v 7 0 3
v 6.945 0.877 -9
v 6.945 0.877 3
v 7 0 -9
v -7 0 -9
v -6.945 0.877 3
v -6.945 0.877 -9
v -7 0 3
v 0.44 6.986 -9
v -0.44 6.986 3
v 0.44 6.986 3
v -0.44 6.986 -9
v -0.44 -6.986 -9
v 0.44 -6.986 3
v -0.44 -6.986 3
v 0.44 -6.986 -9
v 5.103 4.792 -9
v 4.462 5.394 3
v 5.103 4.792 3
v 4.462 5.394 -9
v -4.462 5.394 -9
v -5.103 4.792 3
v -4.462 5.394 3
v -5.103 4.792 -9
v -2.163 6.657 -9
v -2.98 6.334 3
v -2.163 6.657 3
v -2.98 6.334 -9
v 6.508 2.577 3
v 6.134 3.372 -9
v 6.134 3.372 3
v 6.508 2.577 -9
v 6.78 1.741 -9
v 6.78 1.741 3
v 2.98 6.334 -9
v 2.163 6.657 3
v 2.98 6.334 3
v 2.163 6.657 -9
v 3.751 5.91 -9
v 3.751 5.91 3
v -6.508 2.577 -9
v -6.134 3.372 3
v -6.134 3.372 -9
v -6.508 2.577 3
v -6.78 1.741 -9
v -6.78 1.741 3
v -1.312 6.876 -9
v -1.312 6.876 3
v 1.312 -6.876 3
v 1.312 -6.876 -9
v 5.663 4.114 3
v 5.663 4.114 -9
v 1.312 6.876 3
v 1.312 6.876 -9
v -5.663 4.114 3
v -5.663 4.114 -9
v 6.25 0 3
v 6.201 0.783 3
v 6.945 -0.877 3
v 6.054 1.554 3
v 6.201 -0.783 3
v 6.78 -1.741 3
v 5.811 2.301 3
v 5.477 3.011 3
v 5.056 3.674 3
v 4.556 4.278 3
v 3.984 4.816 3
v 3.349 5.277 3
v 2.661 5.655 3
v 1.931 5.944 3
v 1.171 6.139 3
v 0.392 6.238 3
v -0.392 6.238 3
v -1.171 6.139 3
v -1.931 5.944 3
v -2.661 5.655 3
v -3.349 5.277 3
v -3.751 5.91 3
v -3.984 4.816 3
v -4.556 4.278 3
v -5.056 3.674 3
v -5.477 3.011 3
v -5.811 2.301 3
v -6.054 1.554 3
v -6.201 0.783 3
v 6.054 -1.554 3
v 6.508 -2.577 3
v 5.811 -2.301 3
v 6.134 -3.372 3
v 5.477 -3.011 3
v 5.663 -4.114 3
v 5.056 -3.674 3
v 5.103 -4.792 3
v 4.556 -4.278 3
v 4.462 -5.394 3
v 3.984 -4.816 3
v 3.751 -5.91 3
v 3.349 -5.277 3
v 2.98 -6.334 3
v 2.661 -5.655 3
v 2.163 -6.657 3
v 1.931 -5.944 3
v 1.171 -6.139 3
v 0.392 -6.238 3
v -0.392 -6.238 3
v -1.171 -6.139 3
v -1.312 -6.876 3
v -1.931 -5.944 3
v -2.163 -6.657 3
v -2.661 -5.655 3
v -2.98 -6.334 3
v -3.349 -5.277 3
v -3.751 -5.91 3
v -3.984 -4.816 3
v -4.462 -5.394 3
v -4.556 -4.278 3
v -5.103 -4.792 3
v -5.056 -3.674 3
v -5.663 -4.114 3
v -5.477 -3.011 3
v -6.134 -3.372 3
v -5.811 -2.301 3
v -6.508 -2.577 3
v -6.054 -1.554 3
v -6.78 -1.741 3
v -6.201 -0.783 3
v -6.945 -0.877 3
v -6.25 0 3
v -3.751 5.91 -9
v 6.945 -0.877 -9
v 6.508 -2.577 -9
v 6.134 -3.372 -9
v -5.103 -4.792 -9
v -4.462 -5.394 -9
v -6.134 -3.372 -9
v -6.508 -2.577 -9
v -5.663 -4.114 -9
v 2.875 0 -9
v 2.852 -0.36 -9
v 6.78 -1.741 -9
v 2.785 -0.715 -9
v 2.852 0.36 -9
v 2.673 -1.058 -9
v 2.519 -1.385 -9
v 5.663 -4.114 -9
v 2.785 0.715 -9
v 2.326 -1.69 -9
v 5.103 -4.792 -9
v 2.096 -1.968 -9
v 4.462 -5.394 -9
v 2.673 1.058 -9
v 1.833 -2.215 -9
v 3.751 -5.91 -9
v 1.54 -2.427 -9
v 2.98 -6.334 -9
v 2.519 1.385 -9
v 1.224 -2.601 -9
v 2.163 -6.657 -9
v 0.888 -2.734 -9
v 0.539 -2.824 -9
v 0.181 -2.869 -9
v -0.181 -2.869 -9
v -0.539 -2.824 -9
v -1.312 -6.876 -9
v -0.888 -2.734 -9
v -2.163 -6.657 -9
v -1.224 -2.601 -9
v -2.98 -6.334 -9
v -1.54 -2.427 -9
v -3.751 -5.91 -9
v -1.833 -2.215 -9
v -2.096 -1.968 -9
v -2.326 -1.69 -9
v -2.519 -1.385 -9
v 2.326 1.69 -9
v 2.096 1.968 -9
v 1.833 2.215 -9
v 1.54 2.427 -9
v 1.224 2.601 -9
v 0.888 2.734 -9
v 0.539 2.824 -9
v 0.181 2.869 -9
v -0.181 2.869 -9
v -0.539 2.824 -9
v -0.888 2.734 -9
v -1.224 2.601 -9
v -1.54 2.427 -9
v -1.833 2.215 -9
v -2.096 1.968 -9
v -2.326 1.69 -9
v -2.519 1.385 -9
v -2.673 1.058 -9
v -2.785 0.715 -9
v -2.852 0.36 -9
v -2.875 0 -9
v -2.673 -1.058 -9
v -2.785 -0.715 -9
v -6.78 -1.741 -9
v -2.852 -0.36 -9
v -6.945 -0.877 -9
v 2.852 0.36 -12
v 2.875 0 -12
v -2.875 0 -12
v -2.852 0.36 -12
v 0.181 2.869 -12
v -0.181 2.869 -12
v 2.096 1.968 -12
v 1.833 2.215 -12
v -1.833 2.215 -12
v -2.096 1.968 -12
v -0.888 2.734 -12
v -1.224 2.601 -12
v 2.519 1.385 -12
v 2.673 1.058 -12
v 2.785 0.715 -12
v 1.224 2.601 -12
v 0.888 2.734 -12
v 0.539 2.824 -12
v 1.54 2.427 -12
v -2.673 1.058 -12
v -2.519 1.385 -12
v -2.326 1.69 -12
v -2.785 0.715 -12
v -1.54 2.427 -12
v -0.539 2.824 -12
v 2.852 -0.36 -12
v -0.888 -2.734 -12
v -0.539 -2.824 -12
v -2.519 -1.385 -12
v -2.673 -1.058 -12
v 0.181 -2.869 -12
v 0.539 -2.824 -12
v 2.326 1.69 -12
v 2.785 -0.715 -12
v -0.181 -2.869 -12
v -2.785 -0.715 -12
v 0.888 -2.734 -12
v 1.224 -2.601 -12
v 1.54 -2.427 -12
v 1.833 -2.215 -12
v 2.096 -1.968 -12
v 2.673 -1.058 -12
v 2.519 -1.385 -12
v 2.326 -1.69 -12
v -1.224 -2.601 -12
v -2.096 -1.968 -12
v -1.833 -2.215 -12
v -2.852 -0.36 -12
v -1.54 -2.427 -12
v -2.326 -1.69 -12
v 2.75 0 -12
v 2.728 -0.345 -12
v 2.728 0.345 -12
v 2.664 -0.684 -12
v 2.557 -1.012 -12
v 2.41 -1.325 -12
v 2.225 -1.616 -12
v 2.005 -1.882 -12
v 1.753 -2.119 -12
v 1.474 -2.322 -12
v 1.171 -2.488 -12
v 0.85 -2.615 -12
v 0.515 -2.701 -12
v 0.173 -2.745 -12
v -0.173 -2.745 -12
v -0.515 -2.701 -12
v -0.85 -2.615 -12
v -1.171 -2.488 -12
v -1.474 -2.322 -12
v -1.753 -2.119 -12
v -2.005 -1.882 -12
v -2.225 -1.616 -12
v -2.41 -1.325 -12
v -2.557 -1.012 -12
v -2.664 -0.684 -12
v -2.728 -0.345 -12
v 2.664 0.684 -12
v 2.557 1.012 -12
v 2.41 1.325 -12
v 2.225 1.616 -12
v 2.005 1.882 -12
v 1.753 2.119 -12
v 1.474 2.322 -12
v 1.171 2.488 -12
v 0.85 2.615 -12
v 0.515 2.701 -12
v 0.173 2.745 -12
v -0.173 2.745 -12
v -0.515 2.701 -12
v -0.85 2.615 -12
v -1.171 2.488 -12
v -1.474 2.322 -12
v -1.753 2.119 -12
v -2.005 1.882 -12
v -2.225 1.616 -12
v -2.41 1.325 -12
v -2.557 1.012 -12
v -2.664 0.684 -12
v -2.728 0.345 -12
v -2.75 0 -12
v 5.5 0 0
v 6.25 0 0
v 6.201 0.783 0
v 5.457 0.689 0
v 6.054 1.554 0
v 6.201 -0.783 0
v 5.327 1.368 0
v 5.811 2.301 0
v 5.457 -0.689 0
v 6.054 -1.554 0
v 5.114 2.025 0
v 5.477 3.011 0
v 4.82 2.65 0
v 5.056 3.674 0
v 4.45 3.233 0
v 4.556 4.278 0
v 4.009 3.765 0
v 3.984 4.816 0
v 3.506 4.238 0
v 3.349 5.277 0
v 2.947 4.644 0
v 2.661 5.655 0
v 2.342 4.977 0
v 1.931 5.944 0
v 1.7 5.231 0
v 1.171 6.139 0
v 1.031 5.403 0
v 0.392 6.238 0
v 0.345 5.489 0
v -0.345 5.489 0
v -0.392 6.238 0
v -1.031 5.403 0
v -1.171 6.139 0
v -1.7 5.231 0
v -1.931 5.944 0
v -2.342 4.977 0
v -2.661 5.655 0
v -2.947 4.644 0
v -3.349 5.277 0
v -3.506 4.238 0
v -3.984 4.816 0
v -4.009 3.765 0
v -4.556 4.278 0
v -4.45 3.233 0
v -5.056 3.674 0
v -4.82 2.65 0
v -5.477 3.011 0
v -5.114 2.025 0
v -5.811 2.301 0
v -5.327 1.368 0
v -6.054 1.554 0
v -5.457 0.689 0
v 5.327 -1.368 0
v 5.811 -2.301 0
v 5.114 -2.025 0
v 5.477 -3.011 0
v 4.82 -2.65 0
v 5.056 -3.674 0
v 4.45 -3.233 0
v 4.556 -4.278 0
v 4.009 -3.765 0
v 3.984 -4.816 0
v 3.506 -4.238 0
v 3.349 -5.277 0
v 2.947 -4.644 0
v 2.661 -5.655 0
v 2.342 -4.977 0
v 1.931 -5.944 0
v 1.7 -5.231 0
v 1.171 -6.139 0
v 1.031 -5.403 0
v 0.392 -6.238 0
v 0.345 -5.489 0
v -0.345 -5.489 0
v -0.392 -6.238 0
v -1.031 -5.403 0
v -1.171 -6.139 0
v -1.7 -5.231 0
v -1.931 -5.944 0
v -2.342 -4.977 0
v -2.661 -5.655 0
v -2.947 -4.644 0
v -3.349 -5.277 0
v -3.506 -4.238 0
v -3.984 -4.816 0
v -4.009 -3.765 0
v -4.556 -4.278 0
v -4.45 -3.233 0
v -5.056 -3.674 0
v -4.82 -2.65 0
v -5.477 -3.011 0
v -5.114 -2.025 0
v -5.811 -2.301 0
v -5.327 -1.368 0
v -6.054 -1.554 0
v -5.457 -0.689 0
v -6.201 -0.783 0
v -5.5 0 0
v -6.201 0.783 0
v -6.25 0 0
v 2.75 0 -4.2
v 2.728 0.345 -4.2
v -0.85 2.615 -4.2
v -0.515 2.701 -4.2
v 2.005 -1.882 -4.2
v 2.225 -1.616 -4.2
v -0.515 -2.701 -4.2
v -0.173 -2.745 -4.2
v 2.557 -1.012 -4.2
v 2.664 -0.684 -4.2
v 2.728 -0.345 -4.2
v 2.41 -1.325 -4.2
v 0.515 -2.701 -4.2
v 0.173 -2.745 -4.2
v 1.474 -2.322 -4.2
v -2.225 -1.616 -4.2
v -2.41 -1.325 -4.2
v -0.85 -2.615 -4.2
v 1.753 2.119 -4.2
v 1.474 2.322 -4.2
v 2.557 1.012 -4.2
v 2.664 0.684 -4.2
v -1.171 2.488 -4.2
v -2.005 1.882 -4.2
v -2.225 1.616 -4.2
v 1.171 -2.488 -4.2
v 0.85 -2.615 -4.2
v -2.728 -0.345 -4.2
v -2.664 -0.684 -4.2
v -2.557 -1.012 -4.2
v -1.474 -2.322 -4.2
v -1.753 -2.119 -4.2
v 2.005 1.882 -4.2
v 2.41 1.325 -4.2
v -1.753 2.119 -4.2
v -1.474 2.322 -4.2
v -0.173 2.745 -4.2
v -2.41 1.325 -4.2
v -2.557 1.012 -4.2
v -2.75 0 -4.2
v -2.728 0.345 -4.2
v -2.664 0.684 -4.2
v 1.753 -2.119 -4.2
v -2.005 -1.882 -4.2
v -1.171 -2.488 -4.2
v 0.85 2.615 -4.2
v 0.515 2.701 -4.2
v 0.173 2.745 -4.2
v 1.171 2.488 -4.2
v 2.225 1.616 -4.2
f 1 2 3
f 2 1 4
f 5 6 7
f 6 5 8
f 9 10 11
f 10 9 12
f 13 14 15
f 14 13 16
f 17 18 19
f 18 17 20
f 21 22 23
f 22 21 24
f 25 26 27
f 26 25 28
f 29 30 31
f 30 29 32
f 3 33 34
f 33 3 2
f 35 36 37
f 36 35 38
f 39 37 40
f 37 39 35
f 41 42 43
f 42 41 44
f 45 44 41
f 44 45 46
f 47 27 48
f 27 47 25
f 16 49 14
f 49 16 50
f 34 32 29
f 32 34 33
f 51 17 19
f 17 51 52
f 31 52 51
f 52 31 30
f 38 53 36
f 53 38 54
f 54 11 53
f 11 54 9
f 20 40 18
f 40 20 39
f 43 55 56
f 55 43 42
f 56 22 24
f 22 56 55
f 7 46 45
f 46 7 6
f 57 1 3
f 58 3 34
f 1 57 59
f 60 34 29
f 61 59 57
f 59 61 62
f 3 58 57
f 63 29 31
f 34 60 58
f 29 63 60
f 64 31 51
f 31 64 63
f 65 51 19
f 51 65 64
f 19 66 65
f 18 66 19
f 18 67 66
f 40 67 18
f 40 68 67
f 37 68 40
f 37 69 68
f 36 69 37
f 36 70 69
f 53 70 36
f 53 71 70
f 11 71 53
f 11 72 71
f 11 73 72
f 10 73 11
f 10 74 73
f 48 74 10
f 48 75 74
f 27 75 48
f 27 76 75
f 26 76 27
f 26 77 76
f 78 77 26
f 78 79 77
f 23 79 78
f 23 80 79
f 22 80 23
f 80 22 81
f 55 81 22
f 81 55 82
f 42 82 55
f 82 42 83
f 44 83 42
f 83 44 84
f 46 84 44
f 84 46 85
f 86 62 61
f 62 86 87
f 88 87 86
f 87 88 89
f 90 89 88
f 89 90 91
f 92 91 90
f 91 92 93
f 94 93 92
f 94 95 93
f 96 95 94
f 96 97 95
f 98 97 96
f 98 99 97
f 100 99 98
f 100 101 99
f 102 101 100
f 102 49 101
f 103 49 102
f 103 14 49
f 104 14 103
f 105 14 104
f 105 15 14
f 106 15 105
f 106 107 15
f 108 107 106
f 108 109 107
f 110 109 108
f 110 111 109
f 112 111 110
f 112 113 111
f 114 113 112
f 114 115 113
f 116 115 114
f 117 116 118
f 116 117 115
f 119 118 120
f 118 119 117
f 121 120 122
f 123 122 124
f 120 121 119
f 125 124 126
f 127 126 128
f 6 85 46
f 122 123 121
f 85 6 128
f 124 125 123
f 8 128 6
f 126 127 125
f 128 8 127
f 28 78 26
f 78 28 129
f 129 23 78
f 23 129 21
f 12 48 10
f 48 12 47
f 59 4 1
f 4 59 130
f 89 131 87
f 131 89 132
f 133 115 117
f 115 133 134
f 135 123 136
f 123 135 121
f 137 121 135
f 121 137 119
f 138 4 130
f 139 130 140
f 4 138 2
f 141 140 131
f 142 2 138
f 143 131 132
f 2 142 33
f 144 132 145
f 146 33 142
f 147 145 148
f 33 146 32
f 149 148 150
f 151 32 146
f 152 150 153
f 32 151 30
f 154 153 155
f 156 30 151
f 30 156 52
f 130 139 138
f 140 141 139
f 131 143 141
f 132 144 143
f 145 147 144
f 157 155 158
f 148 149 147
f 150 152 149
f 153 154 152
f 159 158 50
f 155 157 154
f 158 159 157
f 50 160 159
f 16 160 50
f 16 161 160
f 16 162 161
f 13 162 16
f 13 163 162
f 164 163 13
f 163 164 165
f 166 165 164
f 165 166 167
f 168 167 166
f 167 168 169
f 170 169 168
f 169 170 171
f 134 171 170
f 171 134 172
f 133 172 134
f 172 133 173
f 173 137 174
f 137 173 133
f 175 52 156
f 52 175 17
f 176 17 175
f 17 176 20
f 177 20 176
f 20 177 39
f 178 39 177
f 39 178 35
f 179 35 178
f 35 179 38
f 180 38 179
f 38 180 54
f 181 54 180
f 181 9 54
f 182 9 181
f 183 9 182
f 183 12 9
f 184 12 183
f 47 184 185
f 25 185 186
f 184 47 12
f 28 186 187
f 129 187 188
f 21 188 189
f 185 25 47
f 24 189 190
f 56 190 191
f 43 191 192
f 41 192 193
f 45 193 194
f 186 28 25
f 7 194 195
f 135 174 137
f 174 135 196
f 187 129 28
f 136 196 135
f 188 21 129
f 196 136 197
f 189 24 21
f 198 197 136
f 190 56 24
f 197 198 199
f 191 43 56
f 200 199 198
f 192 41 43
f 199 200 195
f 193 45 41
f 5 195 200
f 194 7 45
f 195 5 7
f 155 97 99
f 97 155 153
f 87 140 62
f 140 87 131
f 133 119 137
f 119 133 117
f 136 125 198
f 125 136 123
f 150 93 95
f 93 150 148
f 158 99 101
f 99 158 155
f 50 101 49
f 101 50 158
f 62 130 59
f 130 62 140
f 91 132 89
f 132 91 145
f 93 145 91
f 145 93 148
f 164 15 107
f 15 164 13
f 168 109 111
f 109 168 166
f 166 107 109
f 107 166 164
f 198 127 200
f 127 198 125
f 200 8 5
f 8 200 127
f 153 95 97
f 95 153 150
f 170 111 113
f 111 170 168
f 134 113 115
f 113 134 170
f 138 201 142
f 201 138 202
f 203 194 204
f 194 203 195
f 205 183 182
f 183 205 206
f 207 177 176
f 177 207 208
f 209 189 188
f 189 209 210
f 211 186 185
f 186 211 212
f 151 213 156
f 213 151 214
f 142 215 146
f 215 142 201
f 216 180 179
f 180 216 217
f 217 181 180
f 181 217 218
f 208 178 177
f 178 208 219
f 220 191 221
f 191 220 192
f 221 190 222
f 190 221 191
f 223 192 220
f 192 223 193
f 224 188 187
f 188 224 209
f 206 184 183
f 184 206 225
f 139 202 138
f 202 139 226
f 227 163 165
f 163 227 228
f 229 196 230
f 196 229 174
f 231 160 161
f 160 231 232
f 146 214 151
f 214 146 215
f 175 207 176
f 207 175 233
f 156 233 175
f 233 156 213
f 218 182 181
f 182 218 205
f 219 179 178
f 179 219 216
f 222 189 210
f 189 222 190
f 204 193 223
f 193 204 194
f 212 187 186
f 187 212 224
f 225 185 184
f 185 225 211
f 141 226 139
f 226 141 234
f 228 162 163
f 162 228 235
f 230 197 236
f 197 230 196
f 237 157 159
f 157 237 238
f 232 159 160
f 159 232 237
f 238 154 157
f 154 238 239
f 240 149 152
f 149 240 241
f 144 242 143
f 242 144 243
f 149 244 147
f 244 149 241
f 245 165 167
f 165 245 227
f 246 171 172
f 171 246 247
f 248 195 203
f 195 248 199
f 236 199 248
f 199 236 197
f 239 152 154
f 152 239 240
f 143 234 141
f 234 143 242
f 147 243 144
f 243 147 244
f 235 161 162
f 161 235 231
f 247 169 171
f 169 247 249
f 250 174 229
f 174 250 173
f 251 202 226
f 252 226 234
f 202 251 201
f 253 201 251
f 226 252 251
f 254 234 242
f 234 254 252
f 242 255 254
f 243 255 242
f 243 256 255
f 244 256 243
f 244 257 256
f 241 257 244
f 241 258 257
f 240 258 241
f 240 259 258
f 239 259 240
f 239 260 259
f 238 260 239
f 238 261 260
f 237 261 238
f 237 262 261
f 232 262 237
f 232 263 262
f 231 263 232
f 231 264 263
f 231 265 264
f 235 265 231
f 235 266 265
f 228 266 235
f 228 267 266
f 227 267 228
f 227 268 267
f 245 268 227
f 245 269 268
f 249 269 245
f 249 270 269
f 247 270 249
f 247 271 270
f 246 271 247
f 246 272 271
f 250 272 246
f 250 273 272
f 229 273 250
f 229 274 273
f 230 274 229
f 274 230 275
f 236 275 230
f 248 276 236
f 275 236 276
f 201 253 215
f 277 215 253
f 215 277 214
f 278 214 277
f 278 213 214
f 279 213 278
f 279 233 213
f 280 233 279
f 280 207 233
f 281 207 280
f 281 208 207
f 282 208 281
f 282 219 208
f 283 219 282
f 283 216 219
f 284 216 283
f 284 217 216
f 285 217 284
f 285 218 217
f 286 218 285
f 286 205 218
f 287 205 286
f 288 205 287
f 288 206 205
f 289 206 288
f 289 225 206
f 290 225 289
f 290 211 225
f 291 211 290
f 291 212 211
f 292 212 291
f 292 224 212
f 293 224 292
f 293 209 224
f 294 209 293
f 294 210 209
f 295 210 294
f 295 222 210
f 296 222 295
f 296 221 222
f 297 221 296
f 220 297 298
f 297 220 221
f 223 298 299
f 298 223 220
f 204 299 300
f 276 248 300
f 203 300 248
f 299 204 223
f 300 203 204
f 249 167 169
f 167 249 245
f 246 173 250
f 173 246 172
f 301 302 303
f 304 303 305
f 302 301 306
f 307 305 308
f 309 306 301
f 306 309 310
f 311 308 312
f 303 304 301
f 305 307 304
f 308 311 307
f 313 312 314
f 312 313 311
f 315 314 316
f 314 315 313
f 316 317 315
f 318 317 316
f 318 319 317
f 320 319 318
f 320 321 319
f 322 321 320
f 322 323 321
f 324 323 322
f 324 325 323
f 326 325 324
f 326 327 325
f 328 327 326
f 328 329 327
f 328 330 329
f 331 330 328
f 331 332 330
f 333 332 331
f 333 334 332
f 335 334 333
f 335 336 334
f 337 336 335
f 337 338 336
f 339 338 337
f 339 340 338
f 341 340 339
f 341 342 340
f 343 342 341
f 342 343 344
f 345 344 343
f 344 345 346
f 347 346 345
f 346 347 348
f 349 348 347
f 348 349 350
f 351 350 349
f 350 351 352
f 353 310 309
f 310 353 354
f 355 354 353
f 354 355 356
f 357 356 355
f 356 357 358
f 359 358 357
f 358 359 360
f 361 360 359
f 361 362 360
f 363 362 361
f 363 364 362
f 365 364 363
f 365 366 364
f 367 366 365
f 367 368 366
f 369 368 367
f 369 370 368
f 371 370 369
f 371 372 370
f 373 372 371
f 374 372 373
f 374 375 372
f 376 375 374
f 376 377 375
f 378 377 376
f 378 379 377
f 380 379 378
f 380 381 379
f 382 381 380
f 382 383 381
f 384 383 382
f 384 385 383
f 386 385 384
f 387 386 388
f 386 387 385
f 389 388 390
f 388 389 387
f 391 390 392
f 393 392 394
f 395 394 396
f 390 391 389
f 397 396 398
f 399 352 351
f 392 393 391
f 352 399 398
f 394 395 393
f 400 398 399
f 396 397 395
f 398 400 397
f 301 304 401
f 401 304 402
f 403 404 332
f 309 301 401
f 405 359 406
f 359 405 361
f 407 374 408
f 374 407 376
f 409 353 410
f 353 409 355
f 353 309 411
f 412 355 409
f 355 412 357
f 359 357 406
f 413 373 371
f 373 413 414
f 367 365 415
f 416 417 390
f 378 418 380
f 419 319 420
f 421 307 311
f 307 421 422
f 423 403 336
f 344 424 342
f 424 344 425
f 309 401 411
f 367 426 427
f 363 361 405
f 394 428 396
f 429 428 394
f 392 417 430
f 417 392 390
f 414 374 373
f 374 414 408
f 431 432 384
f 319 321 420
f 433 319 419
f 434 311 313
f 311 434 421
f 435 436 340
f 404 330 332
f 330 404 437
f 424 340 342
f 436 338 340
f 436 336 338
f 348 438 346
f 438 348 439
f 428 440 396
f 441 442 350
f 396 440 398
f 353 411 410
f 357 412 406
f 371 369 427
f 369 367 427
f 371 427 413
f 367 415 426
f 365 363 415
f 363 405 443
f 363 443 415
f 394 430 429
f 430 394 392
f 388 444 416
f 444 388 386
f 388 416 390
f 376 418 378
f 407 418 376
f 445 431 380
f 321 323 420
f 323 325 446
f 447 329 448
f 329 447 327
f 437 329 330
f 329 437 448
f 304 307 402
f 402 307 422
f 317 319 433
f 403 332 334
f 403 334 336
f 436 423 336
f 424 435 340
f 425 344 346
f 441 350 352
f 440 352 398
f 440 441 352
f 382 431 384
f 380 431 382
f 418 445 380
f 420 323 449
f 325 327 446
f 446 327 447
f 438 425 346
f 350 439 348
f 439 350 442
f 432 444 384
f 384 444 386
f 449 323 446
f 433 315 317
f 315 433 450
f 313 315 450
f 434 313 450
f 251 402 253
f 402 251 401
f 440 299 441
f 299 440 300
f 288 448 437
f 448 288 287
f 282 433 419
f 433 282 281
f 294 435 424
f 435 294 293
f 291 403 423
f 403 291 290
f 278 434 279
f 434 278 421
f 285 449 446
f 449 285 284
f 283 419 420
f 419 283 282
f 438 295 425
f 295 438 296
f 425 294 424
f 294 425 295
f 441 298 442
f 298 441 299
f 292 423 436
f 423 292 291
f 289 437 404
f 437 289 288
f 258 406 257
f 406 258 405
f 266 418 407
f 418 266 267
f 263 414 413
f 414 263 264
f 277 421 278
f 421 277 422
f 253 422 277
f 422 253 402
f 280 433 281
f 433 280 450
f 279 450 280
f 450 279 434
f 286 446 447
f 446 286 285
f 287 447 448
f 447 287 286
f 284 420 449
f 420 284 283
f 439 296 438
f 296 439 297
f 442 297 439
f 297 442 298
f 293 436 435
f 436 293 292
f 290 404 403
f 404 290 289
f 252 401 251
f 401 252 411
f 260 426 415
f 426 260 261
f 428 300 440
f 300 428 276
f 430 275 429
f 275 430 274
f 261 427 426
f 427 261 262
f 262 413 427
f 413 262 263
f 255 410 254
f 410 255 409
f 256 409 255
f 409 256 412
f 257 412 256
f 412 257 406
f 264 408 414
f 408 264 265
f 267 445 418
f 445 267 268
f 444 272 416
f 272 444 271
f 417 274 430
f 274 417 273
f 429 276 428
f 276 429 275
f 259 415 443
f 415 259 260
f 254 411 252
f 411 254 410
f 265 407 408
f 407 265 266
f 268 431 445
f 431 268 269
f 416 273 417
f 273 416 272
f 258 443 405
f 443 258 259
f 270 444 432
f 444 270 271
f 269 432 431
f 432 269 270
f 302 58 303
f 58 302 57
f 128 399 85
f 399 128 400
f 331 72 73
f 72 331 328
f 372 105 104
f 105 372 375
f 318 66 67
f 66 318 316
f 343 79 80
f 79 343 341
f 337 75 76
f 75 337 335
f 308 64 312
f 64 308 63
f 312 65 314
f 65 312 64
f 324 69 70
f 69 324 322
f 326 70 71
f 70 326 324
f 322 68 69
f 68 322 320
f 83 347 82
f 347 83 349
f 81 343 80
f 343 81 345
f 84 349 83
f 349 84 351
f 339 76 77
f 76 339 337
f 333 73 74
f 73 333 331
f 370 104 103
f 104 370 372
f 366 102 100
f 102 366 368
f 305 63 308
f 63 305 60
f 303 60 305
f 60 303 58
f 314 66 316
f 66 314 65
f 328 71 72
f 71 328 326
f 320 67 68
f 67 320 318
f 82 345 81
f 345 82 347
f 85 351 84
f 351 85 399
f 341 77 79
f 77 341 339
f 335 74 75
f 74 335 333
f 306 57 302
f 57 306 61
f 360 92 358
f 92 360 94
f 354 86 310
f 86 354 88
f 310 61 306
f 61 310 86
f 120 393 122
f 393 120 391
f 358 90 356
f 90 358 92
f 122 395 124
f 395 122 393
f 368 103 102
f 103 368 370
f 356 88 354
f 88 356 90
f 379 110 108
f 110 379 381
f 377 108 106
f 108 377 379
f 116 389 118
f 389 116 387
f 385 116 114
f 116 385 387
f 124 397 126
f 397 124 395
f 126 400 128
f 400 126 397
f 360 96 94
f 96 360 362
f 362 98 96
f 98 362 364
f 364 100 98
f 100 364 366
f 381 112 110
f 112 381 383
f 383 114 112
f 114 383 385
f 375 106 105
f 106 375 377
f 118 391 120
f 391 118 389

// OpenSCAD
$fn = 50;

difference() {
	union() {
		translate(v = [0, 0, -9.0]) {
			cylinder(h = 12, r = 7.0);
		}
		#translate(v = [0, 0, -12.0]) {
			cylinder(h = 12, r = 2.875);
		}
	}
	union() {
		translate(v = [0, 0, 0]) {
			rotate(a = [0, 0, 0]) {
				difference() {
					union() {
						translate(v = [0, 0, -12.0]) {
							cylinder(h = 12, r = 2.25);
						}
						translate(v = [0, 0, -4.2]) {
							cylinder(h = 4.2, r1 = 2.75, r2 = 5.5);
						}
						translate(v = [0, 0, -12.0]) {
							cylinder(h = 12, r = 2.75);
						}
						translate(v = [0, 0, -12.0]) {
							cylinder(h = 12, r = 2.25);
						}
					}
					union();
				}
			}
		}
		#cylinder(h = 3, r = 6.25);
	}
}
